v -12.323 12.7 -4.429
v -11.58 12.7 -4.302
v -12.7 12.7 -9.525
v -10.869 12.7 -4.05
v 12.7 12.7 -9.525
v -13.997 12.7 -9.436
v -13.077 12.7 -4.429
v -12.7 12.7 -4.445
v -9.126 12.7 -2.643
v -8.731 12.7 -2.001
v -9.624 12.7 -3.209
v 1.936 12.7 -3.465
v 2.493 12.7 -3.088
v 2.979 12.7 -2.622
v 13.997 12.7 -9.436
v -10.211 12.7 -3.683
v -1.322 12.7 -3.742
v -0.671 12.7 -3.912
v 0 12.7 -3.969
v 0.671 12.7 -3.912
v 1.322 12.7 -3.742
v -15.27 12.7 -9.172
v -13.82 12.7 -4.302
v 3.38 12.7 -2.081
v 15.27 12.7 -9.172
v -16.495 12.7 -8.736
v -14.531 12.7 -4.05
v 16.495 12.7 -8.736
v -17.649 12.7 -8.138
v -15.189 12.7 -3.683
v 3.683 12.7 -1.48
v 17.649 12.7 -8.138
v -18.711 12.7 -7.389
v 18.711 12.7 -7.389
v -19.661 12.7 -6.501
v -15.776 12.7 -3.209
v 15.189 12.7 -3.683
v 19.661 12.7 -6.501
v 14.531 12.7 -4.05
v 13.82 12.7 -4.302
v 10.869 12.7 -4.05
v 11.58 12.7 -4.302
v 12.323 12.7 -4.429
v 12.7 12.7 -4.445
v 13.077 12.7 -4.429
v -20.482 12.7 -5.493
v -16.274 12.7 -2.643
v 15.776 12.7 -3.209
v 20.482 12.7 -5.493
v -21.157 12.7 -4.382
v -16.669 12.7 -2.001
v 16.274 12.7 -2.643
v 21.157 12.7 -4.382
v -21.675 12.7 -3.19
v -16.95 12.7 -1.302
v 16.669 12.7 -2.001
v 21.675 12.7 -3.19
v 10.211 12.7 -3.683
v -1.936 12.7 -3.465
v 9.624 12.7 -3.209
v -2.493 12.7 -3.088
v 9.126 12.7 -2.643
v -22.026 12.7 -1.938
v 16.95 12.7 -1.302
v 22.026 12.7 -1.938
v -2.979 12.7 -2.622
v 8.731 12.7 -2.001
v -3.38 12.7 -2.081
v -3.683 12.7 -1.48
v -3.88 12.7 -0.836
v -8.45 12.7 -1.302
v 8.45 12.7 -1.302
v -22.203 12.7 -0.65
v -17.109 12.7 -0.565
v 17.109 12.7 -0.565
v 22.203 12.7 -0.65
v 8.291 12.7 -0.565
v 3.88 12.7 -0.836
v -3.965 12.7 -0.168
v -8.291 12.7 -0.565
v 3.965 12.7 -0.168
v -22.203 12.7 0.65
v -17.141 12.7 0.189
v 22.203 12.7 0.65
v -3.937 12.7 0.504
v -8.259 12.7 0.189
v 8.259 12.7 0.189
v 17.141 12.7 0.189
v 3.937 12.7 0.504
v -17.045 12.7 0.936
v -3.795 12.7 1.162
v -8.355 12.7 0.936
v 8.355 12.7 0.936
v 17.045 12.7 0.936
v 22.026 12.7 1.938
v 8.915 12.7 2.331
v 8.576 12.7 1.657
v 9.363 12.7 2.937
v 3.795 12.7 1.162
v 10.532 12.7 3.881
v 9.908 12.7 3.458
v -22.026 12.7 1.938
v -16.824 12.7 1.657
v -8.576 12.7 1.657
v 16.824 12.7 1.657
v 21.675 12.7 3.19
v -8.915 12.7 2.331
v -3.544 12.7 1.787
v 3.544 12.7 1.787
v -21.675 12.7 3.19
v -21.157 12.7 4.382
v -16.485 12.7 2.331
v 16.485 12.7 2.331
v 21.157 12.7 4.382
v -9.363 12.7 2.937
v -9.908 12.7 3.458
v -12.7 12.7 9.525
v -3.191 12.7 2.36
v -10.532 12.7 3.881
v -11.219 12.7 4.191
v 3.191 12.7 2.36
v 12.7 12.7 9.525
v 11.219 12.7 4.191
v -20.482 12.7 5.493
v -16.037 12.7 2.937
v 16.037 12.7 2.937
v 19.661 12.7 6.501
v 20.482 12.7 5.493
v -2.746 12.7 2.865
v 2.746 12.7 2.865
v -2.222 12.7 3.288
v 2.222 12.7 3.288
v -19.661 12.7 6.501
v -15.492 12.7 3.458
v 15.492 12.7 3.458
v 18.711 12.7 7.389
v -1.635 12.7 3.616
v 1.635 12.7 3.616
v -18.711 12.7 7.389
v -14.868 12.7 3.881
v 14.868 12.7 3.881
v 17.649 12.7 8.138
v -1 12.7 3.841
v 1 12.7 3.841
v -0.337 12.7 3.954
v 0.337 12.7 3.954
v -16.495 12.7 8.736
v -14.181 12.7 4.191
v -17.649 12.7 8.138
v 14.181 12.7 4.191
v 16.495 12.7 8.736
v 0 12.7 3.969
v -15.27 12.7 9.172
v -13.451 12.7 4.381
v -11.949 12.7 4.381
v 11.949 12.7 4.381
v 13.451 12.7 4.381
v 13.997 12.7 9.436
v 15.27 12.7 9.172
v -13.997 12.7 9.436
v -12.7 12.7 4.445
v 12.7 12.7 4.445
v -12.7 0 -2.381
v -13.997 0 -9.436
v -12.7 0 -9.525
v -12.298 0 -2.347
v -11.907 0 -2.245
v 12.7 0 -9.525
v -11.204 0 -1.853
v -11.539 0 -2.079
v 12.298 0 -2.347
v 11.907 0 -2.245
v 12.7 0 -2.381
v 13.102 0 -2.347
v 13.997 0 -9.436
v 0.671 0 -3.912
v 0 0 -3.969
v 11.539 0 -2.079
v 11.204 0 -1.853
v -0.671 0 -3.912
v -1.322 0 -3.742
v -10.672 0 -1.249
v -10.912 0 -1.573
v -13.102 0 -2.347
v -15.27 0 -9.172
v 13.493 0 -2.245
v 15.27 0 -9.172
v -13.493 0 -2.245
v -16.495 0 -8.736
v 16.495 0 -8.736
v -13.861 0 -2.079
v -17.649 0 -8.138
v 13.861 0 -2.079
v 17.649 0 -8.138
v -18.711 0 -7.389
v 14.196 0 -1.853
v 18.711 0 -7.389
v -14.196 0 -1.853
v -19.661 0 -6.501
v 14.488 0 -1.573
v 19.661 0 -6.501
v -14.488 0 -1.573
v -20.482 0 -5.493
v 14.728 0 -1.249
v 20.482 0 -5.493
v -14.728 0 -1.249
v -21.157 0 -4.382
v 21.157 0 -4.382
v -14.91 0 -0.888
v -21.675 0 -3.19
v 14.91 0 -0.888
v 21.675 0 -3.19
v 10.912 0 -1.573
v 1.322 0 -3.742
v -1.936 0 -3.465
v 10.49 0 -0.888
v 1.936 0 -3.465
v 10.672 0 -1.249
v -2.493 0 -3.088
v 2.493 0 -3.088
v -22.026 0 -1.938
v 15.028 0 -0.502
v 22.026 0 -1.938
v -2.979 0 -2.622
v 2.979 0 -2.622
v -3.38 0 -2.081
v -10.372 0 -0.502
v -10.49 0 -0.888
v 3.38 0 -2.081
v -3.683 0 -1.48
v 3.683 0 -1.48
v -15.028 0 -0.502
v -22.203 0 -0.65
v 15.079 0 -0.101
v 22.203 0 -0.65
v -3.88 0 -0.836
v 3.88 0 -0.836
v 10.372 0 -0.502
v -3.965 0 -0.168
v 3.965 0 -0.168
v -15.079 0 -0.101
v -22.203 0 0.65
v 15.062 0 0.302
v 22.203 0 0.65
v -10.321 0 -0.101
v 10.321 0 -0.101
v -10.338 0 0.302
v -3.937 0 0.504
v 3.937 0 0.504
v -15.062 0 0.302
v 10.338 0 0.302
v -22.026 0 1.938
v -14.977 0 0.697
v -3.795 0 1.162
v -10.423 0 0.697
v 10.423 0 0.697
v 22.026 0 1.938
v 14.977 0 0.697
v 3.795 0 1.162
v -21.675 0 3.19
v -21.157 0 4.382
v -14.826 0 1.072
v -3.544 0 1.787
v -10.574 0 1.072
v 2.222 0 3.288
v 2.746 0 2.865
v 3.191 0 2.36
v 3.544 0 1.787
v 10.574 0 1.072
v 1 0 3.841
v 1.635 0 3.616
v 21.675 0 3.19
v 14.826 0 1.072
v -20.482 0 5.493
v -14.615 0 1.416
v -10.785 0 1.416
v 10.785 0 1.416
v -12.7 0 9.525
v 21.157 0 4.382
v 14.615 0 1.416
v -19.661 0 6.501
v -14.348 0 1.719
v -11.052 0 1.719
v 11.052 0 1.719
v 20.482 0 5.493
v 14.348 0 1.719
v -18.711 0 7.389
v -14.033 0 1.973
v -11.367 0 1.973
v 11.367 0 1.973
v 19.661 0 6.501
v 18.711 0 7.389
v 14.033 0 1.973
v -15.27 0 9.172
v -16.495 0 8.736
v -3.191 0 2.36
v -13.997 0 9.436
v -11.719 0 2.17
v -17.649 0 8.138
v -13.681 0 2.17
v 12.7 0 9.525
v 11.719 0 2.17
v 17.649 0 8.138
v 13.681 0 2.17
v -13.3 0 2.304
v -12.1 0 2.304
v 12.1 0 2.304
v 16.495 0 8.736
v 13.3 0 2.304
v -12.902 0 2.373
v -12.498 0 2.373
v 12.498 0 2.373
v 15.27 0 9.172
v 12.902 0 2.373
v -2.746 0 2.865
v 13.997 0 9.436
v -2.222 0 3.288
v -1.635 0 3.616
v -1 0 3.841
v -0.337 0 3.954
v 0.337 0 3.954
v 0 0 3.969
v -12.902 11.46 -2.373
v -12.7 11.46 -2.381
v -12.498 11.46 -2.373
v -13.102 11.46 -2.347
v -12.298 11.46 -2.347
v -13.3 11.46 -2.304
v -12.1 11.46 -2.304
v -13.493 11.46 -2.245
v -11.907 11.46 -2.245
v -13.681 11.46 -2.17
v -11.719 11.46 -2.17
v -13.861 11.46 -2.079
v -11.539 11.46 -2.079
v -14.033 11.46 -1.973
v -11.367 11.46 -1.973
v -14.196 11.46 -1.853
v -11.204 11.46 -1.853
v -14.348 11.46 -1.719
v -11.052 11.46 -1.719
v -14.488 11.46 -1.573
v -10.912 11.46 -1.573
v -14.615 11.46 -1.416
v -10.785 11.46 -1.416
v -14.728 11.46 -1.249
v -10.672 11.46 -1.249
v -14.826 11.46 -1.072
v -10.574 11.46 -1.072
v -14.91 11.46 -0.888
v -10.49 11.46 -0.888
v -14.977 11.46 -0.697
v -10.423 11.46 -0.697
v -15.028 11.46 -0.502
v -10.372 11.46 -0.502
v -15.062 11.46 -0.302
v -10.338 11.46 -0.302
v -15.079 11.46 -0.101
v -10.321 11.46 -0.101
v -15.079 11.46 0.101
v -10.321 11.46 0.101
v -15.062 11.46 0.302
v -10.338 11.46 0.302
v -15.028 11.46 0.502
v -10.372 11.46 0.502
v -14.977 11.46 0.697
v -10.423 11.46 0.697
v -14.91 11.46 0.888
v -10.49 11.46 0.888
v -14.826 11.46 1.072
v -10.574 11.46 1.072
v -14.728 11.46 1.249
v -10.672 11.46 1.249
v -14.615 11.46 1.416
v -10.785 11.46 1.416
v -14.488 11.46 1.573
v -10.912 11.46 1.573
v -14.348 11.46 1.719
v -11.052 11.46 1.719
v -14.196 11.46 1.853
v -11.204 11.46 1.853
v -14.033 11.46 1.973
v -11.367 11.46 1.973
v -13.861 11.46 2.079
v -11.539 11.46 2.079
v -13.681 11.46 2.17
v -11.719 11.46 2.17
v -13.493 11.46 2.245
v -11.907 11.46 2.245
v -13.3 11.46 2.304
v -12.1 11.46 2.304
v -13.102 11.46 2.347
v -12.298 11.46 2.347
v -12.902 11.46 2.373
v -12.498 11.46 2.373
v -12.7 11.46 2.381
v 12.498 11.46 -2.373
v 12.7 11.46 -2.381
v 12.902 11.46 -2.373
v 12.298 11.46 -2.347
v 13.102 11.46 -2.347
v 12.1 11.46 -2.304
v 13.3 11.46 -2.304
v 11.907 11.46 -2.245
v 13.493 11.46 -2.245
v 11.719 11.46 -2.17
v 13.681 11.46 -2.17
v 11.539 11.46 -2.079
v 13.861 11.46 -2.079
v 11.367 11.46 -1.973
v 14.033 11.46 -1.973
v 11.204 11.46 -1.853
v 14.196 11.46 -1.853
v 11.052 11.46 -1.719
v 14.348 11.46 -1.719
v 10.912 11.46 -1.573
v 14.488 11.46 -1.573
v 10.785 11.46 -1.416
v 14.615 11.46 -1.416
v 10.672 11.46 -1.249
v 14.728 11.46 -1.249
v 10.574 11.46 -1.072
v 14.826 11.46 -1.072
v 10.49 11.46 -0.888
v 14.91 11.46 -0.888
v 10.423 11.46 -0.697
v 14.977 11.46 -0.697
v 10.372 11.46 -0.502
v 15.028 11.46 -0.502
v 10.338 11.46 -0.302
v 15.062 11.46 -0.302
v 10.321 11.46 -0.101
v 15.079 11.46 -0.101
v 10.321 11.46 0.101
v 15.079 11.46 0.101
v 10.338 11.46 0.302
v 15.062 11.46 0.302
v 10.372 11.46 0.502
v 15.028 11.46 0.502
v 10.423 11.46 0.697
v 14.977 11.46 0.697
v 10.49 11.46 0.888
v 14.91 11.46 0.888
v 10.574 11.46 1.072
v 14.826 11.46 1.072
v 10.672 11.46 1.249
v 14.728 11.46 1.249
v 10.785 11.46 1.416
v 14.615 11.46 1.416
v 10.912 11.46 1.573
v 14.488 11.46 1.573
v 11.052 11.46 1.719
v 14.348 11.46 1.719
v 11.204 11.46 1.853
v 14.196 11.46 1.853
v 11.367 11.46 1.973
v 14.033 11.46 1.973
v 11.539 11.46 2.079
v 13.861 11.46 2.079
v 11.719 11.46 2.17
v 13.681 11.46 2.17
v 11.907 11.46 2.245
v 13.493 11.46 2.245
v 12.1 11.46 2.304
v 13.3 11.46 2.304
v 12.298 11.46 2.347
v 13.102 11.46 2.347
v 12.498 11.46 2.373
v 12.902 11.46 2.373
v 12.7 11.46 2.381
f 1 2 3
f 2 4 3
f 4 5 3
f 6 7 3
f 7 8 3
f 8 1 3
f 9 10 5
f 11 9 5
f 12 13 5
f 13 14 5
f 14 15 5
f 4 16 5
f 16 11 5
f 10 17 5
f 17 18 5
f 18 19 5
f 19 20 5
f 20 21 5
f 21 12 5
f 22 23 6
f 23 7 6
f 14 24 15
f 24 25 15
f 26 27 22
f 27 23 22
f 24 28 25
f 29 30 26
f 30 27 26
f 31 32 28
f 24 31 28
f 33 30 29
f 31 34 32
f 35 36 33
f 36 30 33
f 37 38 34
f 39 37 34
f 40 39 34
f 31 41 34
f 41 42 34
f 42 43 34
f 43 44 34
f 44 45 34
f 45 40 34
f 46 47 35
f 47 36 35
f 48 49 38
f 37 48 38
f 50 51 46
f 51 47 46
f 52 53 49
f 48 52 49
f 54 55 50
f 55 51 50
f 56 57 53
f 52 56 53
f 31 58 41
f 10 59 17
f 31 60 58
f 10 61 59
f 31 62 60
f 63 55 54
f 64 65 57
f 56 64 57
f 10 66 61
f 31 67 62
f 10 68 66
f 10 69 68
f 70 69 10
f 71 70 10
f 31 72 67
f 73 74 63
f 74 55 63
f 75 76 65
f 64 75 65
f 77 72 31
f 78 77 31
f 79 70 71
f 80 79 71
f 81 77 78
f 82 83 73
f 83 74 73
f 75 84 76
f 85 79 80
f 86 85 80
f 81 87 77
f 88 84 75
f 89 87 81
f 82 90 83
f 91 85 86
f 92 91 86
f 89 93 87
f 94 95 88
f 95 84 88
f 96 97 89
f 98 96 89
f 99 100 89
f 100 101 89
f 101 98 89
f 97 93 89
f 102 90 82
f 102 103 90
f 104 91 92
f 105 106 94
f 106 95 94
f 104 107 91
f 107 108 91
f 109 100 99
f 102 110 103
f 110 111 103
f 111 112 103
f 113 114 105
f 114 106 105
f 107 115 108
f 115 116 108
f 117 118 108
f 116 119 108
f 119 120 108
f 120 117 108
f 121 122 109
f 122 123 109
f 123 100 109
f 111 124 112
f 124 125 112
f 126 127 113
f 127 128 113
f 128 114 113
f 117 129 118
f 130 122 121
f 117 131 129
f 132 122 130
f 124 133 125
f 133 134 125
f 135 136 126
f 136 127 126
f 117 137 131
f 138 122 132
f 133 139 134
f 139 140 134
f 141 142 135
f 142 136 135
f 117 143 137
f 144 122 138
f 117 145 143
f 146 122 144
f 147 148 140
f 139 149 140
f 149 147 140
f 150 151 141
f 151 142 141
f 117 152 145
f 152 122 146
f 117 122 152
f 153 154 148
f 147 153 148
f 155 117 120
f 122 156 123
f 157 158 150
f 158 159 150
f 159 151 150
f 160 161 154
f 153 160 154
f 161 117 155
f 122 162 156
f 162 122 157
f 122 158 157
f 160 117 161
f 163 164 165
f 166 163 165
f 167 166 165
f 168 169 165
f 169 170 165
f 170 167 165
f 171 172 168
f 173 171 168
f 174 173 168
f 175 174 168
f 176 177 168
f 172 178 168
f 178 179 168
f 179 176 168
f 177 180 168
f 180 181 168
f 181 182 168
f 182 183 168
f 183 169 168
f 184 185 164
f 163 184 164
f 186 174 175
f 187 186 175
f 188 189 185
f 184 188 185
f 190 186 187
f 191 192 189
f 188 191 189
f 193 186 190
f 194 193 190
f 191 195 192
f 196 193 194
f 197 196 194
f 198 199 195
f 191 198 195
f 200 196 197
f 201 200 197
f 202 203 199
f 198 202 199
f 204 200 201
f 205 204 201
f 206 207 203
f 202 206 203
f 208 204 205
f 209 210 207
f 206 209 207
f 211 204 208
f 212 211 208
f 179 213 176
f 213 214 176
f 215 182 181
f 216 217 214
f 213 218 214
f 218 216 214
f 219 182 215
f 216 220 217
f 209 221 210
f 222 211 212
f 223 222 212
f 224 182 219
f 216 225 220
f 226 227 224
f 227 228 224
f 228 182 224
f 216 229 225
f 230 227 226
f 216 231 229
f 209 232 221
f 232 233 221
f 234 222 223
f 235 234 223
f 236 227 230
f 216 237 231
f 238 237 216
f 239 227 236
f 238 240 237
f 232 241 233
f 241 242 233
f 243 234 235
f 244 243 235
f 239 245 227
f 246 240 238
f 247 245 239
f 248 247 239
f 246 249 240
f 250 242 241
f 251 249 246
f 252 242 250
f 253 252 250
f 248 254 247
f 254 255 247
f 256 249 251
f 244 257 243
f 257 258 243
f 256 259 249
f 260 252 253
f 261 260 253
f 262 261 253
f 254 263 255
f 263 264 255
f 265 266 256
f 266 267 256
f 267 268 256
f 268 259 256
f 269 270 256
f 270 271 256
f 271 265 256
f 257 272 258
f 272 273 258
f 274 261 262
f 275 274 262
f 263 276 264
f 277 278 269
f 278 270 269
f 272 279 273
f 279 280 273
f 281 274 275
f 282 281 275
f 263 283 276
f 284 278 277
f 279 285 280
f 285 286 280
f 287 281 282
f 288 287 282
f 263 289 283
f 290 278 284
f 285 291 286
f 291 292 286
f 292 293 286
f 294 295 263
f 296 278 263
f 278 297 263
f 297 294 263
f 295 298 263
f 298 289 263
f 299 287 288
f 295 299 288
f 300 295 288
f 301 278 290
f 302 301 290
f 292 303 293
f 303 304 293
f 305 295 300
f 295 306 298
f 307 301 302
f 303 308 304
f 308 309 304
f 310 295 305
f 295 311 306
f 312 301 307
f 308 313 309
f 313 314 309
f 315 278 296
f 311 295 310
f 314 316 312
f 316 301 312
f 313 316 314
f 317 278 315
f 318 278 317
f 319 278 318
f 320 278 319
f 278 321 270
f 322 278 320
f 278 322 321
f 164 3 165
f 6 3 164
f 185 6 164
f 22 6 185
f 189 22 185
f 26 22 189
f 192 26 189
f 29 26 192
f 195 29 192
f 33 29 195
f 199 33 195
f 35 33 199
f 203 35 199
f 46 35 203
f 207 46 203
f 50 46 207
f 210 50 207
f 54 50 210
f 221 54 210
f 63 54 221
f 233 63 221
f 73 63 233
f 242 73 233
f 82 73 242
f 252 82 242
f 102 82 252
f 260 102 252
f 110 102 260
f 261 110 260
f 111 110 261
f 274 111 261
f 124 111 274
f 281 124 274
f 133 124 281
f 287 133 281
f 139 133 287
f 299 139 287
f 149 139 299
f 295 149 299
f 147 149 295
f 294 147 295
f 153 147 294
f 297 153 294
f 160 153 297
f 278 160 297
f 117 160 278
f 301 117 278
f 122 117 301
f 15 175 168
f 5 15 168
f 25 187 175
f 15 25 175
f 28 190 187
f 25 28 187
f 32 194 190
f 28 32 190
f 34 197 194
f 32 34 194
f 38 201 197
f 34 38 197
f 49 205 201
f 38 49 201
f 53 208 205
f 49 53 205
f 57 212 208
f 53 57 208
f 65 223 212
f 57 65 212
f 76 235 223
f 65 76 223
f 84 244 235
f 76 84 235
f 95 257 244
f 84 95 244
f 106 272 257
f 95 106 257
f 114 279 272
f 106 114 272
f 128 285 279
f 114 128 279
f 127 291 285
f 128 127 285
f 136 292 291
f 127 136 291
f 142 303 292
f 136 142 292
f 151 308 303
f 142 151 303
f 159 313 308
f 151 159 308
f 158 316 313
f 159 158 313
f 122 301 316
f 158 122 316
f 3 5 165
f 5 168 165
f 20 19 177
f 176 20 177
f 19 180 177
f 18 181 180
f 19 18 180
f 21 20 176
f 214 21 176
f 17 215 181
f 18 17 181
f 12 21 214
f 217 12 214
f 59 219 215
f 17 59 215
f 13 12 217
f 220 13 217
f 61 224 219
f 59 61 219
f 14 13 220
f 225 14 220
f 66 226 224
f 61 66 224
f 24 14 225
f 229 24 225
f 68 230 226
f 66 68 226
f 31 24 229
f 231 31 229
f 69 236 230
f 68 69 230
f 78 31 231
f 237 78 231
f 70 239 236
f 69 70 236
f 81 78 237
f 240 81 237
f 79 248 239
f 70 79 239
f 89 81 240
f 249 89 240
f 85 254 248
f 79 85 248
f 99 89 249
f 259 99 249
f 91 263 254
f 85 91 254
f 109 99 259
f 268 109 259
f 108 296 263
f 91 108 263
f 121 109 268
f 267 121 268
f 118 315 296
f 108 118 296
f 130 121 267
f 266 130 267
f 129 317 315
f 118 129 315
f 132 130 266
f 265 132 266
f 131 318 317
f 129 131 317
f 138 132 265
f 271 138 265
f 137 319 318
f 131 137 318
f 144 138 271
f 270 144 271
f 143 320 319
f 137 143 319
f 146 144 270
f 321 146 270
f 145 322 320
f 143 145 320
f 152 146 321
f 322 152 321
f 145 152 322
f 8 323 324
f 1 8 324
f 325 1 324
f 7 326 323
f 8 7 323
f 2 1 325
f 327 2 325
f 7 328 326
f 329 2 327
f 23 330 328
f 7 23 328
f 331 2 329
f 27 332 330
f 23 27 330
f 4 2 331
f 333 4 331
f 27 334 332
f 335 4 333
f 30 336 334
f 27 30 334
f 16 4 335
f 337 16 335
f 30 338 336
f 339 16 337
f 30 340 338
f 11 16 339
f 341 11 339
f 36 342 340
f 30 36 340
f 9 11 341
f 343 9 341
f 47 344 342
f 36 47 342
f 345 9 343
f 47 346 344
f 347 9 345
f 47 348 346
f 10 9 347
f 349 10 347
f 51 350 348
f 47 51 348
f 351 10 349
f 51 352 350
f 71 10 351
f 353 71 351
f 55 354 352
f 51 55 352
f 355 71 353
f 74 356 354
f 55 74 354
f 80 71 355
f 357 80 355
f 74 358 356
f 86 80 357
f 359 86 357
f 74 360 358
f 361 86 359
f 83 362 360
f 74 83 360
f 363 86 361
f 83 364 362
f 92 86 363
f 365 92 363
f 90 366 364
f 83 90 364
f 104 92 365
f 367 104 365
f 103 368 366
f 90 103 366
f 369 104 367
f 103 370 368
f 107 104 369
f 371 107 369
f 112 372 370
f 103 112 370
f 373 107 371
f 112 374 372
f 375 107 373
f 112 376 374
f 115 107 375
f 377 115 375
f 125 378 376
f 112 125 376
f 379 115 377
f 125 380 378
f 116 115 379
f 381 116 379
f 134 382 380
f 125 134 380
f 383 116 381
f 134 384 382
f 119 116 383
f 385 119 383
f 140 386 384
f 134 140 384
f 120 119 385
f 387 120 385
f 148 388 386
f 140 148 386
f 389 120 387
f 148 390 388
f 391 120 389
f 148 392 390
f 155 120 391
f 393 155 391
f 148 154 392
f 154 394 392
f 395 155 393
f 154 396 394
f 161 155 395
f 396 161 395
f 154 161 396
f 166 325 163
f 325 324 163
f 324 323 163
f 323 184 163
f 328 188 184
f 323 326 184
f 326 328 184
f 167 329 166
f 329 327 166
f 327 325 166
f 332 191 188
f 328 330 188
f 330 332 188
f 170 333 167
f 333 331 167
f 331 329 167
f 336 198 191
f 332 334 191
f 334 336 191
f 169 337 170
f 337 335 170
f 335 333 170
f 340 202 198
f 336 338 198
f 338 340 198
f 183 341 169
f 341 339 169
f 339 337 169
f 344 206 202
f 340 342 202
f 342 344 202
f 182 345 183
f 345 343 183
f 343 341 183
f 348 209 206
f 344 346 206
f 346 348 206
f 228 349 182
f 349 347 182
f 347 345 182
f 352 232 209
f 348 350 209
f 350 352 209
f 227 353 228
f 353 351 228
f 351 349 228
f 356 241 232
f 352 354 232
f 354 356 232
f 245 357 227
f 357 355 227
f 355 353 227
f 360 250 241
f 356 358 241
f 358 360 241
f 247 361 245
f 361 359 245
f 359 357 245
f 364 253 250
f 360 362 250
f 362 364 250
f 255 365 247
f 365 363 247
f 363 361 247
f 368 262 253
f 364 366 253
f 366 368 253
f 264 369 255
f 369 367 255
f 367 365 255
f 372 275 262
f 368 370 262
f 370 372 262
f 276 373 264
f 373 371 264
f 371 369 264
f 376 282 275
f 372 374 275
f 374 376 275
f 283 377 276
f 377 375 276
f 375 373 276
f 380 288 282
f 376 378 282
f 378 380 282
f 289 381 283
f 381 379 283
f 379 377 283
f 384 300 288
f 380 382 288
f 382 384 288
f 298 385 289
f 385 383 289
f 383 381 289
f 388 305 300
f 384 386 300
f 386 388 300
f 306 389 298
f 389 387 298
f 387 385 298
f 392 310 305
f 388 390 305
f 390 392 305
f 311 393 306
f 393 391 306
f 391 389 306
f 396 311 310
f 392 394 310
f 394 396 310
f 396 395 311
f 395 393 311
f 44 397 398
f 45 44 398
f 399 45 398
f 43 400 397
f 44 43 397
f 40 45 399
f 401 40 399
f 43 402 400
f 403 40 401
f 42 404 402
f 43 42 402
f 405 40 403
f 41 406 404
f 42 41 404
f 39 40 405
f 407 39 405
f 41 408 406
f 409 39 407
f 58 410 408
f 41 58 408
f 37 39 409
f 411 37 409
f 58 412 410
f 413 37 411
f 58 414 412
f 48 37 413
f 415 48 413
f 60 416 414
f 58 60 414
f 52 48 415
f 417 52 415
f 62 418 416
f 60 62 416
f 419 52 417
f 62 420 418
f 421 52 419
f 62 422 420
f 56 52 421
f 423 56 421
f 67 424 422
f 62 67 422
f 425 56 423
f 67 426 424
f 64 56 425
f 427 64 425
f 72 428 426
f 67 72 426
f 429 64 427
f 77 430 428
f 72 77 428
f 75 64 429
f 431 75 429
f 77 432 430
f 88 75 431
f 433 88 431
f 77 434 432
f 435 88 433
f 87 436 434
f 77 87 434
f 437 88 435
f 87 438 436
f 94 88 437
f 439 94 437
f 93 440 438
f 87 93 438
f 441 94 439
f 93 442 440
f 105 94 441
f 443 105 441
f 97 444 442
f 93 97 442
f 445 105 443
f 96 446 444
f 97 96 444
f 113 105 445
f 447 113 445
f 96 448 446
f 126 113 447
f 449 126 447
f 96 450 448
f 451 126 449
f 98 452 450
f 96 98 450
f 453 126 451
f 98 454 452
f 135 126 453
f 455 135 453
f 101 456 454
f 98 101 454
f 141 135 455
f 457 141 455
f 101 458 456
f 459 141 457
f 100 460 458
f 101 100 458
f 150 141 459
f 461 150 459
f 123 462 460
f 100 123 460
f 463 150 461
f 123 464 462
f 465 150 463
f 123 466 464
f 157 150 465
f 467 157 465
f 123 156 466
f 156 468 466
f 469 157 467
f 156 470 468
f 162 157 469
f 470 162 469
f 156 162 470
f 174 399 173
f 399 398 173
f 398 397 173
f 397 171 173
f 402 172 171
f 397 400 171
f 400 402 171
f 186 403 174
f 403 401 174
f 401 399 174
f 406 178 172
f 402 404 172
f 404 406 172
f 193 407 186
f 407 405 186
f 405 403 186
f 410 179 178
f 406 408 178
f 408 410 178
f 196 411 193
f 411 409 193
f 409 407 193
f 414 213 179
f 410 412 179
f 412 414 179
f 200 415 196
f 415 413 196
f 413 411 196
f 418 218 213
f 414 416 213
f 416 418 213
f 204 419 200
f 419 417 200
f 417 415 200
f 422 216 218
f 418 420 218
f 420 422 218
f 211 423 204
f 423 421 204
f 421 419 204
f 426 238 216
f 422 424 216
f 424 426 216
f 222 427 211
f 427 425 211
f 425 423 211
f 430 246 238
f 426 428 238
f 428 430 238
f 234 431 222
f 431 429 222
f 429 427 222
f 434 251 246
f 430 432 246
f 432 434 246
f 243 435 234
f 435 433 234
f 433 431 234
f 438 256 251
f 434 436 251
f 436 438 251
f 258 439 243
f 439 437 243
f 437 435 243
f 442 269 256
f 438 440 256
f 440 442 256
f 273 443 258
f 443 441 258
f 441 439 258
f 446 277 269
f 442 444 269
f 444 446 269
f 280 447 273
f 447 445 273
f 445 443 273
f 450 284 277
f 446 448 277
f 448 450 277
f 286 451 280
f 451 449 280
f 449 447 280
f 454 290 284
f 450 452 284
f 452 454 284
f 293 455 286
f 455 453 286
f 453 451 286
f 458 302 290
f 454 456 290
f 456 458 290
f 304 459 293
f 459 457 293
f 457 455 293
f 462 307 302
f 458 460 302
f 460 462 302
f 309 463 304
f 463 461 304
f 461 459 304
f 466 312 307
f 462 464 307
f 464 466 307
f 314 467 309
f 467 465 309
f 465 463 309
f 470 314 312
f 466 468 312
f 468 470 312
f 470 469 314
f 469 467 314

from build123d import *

# Parameters (mm, degrees)
SKETCH1_R           = 3.96875
BOSS_EXTRUDE1_DEPTH = 12.7


with BuildPart() as part:
    # Sketch1 → Boss-Extrude1 (new body)
    with BuildSketch(Plane(origin=(0, 0, 0), x_dir=(1, 0, 0), z_dir=(0, 1, 0))):
        with BuildLine():
            Line((-12.7, 9.525), (12.7, 9.525))
            ThreePointArc((12.7, 9.525), (22.225, 0), (12.7, -9.525))
            Line((12.7, -9.525), (-12.7, -9.525))
            ThreePointArc((-12.7, -9.525), (-22.225, 0), (-12.7, 9.525))
        make_face()
        Circle(SKETCH1_R, mode=Mode.SUBTRACT)
    extrude(amount=BOSS_EXTRUDE1_DEPTH)

    # Sketch2 → Cut-Revolve1 (revolve, cut)
    with BuildSketch(Plane.XY):
        Polygon((-12.7, 12.7), (-17.145, 12.7), (-15.08125, 11.459973897), (-15.08125, 0), (-12.7, 0), align=None)
    cut_revolve1 = revolve(axis=Axis((-12.7, 0, 0), (0, 1, 0)), mode=Mode.SUBTRACT)

    # Mirror1: Cut-Revolve1 across plane
    add(cut_revolve1.mirror(Plane(origin=(0, 0, 0), x_dir=(0, 0, 1), z_dir=(1, 0, 0))), mode=Mode.SUBTRACT)


solid = part.part
